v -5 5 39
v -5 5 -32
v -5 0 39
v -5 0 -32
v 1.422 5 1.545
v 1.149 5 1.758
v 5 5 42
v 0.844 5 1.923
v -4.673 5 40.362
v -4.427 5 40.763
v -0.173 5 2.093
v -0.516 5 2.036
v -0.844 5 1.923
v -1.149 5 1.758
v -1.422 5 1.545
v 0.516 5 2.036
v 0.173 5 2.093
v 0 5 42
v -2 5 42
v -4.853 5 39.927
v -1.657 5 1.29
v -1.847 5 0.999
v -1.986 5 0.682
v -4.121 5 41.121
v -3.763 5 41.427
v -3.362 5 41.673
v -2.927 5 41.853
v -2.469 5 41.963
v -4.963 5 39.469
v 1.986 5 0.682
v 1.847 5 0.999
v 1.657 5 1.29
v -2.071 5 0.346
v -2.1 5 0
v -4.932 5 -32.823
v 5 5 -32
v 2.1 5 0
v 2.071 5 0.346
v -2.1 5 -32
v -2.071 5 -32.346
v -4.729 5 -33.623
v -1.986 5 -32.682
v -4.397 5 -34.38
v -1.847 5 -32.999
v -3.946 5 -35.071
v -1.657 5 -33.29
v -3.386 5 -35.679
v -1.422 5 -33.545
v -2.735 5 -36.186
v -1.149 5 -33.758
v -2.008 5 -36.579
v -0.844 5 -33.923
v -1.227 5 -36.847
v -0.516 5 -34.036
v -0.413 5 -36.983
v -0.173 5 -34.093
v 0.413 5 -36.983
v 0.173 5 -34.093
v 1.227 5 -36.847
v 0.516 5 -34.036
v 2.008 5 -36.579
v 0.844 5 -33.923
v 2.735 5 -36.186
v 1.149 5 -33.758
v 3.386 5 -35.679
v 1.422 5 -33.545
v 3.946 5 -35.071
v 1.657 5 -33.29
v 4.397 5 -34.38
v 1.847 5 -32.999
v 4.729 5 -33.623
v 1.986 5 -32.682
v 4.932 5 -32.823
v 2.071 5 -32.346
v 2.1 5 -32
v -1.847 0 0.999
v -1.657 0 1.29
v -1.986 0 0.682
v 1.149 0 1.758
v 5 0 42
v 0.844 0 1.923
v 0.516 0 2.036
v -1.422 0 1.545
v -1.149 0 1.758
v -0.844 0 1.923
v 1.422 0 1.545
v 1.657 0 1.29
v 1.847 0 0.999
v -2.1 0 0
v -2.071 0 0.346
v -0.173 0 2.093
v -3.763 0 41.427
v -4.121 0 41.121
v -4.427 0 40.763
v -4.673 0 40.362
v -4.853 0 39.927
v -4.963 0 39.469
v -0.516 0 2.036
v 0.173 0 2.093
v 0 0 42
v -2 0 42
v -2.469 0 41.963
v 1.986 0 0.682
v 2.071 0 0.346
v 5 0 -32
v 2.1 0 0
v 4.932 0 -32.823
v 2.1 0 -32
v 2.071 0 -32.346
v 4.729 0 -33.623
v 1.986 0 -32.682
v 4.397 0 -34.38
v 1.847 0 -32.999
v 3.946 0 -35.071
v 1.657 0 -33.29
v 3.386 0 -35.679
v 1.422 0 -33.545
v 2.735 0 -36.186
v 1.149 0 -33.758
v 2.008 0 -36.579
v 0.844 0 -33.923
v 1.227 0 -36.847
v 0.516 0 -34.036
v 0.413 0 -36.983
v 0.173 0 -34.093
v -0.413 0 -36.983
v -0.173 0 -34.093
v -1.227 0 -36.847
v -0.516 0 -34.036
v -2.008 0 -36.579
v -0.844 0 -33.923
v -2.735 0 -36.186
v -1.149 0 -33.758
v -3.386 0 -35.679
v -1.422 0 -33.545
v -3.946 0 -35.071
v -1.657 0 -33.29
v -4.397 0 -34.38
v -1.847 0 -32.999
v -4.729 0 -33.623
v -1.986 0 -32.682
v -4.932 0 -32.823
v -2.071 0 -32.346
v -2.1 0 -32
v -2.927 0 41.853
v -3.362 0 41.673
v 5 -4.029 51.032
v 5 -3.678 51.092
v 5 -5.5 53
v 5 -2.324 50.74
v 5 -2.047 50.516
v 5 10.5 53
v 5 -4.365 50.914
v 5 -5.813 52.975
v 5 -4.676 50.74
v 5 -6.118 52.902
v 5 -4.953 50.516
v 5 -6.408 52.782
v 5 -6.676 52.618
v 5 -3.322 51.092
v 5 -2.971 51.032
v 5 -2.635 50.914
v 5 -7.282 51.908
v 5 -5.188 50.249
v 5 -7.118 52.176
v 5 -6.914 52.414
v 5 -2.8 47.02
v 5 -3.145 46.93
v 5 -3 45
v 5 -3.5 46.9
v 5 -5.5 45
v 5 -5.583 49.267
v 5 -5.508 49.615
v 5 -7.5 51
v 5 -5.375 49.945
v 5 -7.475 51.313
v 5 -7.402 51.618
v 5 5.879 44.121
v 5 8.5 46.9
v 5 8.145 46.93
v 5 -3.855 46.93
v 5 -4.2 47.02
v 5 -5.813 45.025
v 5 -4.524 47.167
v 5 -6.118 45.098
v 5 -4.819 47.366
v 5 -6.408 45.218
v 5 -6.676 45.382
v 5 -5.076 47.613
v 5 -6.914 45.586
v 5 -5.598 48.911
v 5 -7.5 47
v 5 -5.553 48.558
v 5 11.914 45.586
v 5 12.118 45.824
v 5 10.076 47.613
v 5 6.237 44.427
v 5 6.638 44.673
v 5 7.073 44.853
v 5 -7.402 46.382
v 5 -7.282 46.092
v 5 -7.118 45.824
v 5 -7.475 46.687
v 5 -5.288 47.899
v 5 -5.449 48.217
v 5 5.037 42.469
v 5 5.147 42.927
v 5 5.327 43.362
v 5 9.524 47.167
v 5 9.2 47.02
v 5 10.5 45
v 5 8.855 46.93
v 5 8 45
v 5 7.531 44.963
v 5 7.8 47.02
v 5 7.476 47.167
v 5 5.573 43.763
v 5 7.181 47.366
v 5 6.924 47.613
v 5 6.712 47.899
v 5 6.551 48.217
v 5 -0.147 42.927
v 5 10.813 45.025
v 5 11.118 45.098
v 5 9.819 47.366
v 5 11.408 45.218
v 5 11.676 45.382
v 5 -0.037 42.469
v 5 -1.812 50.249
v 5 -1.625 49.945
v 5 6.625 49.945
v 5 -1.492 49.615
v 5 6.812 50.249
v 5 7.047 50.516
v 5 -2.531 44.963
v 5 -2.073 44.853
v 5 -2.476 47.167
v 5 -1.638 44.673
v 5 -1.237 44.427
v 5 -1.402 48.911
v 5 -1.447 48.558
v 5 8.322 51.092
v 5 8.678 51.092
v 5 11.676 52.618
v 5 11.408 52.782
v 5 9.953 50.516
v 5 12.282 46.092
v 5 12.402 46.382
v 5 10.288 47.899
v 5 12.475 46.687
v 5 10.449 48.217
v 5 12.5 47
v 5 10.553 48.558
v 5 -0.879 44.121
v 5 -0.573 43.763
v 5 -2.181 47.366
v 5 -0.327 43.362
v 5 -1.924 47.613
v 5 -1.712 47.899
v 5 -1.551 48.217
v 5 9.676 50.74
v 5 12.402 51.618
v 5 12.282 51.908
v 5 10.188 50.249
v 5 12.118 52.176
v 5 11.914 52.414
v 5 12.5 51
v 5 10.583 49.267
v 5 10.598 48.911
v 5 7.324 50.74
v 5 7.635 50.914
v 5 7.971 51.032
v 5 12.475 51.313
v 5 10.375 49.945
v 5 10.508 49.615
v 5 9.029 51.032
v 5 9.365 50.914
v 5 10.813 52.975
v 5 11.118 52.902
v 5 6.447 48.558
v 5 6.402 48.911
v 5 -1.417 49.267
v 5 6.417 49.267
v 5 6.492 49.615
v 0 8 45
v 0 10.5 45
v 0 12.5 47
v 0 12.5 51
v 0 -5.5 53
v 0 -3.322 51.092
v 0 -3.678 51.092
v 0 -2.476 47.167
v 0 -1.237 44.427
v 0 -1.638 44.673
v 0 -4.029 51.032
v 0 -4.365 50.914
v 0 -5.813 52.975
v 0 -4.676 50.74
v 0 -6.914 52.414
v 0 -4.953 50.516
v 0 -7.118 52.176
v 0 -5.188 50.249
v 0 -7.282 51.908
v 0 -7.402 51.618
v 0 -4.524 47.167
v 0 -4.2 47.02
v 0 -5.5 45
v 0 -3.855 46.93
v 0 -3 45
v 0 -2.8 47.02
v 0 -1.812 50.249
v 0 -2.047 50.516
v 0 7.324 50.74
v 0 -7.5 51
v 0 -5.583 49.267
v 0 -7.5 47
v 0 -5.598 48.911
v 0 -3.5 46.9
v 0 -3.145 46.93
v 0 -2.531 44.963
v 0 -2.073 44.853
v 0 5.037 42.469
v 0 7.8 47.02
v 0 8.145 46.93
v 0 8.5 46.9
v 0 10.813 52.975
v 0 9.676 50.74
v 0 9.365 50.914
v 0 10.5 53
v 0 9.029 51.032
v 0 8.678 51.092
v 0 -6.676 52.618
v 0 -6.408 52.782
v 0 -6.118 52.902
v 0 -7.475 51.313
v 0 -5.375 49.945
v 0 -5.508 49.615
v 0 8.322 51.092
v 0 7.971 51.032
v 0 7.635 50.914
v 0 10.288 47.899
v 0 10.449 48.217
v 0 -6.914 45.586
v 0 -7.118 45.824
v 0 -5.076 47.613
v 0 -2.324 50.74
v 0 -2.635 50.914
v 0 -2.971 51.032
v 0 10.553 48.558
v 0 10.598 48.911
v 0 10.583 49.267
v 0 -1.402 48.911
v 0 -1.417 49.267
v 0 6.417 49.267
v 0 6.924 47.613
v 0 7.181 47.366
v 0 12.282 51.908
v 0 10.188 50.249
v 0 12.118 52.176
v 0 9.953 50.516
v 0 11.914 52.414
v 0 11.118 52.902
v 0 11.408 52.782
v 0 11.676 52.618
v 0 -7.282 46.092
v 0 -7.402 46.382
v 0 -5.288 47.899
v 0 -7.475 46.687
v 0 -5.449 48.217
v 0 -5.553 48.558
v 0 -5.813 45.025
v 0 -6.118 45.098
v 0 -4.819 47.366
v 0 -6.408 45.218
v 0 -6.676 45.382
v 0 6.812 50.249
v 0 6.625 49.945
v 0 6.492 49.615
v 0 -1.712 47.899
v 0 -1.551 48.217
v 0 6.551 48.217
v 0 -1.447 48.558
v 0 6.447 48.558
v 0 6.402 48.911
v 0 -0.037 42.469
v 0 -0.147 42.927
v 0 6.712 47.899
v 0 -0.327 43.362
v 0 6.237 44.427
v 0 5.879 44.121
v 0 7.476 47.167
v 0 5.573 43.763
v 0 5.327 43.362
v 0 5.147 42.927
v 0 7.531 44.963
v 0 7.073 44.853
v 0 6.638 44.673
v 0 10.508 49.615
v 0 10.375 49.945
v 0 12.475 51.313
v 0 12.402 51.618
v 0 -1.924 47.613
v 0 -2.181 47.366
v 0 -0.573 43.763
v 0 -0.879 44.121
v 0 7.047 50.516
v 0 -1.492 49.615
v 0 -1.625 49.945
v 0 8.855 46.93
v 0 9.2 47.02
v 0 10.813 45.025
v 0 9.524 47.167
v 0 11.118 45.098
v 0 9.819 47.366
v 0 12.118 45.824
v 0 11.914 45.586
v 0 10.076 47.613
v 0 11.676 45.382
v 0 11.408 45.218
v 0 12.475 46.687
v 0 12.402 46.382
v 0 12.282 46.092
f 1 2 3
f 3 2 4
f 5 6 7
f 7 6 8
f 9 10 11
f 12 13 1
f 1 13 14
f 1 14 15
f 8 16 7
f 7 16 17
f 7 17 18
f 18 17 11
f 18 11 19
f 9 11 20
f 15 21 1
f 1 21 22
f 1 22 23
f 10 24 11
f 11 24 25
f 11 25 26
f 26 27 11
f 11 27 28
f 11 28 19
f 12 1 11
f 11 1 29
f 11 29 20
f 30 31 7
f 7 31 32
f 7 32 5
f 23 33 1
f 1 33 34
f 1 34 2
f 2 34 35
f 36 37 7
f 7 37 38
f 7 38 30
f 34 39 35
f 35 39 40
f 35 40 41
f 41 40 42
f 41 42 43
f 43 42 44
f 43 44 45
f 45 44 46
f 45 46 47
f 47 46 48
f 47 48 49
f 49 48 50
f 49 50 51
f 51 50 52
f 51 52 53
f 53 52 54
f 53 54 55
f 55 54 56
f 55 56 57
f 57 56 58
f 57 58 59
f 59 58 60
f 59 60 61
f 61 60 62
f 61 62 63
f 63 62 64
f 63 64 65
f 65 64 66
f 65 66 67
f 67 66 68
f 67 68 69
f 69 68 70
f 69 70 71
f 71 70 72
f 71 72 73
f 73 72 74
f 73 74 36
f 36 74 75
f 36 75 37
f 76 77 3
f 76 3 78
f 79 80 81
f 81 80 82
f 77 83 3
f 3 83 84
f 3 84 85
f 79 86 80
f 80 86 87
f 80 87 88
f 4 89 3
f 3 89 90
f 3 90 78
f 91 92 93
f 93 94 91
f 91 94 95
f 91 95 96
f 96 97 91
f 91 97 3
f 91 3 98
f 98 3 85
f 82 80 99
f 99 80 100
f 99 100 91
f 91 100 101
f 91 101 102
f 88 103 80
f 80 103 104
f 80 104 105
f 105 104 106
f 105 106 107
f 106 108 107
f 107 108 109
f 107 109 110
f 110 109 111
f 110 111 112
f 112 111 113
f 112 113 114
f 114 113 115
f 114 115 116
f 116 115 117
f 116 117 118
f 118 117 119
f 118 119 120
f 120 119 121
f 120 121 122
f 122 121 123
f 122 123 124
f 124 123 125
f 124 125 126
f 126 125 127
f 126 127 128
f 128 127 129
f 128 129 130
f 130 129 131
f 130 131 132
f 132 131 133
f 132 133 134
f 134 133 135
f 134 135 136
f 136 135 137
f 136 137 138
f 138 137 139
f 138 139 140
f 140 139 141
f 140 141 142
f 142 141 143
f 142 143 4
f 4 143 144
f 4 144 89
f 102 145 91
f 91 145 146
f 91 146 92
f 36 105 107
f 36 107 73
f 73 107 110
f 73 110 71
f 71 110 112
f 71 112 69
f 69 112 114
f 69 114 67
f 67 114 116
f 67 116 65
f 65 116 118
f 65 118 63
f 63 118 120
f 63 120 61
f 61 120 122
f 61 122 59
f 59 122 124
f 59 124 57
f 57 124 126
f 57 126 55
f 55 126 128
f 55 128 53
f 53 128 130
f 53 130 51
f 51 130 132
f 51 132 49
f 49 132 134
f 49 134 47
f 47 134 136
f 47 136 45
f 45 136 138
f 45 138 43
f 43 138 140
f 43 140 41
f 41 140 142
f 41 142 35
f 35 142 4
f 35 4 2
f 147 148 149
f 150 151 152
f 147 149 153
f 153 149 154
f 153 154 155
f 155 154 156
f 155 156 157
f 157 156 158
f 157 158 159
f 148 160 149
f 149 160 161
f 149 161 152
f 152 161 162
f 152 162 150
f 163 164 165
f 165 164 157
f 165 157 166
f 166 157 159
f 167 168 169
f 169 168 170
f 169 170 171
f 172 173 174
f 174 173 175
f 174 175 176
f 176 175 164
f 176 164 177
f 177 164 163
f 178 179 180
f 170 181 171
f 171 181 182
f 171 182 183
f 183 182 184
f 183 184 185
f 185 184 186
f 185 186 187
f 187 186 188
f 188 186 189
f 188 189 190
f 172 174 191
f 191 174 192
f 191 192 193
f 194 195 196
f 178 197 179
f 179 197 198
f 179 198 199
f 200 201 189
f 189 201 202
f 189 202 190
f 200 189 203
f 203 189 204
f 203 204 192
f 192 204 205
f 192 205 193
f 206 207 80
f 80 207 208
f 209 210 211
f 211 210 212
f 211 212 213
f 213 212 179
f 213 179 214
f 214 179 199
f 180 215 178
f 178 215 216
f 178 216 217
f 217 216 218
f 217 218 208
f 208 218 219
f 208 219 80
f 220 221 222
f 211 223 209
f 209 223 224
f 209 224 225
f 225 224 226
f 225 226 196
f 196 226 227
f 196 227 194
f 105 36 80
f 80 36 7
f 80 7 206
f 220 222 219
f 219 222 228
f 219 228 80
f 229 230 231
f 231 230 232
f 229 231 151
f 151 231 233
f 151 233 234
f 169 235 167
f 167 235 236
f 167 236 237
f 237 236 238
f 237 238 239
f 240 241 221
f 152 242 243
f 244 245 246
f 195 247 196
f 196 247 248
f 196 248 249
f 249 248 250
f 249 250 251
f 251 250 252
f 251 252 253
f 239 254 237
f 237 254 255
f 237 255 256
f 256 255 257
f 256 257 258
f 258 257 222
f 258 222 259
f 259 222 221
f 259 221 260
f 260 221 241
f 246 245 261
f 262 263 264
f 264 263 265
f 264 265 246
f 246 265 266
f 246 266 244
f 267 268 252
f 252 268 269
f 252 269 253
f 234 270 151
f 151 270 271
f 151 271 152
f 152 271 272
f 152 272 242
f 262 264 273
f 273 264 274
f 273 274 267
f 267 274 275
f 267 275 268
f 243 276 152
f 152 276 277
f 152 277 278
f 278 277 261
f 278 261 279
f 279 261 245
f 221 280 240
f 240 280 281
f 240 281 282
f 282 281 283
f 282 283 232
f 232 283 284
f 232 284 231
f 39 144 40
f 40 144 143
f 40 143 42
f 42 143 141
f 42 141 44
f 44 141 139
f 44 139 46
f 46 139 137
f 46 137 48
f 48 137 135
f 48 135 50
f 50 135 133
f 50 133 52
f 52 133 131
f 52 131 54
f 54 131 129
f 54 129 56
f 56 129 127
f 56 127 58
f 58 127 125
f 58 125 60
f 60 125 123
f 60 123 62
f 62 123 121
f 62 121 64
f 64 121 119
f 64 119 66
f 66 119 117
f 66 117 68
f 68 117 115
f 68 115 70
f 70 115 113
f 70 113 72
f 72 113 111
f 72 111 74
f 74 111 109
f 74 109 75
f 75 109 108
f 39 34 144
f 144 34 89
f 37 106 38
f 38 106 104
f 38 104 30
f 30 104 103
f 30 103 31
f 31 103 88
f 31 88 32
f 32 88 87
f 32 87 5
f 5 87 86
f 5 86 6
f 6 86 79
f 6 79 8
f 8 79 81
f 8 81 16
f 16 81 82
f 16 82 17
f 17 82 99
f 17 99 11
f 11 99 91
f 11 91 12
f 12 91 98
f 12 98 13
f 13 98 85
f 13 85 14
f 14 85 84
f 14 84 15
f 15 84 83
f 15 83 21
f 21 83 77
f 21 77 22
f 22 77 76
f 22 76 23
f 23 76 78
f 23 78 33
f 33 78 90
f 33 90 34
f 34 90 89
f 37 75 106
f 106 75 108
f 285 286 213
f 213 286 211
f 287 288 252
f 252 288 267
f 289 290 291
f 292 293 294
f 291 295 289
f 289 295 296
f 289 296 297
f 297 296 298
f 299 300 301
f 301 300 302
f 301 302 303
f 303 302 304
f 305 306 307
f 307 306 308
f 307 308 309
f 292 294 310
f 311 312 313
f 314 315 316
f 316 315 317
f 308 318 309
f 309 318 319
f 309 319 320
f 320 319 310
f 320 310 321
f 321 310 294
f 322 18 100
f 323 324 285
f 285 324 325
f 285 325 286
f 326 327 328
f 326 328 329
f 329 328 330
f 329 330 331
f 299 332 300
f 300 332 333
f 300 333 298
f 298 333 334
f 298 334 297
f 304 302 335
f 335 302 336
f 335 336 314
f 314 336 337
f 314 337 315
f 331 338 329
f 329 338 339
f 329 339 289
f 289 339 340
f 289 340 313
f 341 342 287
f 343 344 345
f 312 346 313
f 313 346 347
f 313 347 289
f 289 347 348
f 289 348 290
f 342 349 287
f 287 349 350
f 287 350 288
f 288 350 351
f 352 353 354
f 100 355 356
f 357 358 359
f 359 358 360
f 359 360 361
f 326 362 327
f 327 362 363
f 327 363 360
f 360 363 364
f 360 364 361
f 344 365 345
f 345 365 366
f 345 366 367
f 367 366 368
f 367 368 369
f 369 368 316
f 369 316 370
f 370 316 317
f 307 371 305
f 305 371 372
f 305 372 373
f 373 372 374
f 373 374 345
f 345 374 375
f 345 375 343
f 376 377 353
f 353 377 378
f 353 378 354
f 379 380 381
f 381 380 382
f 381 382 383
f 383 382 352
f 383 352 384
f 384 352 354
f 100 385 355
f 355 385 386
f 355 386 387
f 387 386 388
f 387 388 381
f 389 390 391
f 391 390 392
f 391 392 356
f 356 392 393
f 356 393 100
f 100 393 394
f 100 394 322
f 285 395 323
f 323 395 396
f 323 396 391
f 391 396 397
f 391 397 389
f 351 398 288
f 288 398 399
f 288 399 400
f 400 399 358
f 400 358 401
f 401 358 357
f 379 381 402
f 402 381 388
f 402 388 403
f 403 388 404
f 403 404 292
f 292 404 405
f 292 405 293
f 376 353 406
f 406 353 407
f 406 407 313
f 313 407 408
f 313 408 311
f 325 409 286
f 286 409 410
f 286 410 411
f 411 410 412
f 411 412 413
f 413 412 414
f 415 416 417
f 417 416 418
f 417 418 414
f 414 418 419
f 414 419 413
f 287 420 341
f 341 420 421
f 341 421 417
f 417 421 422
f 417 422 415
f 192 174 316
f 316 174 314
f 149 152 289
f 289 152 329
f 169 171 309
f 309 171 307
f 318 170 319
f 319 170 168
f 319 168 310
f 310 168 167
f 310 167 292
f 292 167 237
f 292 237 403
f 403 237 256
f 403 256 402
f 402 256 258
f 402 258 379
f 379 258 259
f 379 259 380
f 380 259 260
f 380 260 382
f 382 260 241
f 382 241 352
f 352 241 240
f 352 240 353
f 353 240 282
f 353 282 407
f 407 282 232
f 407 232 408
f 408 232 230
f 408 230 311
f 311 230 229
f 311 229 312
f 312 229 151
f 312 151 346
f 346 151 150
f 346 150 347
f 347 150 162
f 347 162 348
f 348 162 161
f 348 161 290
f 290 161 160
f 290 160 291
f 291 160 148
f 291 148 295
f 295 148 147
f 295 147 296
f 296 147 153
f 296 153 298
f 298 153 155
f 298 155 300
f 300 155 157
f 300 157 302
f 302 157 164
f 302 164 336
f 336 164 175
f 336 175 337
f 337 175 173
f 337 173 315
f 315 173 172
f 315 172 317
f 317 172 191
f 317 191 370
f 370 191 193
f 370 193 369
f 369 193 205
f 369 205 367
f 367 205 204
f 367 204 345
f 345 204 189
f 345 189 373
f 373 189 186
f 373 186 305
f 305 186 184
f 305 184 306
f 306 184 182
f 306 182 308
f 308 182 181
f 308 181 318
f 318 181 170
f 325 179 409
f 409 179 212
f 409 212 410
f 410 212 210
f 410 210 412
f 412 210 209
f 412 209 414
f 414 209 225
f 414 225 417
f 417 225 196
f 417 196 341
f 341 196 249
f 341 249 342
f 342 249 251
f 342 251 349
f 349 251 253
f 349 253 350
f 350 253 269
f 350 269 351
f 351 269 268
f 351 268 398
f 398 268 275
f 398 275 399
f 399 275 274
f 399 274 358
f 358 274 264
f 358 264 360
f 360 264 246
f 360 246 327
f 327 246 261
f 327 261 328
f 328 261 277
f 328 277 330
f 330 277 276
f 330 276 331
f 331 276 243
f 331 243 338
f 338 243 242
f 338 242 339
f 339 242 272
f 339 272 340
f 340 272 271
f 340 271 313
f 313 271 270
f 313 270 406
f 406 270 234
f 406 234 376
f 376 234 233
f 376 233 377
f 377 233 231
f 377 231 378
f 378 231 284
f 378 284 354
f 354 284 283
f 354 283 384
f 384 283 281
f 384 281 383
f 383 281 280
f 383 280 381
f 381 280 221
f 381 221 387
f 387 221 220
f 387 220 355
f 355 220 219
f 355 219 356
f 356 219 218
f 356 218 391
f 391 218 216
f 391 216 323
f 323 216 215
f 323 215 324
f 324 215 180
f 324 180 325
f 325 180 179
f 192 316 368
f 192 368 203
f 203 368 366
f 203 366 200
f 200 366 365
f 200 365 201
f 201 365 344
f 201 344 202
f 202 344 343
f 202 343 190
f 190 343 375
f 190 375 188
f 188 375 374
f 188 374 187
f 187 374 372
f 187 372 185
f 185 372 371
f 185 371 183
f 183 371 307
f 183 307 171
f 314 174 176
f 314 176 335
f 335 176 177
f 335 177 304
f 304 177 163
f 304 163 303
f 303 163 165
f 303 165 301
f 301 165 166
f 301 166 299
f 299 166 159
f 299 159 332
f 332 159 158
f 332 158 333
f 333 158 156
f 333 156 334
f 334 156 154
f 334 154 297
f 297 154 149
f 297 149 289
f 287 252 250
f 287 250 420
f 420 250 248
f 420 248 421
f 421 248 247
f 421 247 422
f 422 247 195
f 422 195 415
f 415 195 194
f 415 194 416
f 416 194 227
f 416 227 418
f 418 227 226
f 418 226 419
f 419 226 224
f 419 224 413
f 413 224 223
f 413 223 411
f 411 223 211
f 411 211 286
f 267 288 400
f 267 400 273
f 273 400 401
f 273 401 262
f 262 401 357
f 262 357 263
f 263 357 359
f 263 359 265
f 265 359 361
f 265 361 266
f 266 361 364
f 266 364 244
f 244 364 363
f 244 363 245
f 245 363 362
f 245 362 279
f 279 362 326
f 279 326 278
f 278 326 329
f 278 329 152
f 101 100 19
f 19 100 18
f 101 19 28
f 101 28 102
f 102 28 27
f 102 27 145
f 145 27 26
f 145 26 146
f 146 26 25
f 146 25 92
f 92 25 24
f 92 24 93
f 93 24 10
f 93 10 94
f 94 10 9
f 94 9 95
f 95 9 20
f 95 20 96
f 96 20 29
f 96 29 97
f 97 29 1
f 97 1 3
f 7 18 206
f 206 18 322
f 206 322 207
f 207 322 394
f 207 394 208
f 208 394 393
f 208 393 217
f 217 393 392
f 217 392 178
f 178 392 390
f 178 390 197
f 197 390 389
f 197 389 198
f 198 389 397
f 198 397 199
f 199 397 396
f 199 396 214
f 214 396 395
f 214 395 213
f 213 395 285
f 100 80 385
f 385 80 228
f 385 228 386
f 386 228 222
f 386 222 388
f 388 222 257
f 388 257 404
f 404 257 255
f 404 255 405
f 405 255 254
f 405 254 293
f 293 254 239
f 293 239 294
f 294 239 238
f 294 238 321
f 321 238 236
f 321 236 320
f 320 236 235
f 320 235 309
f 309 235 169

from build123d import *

# Parameters (mm, degrees)
BOSS_EXTRUDE1_DEPTH = 5
SKETCH2_W           = 5
SKETCH2_H           = 20
BOSS_EXTRUDE2_DEPTH = 8
SKETCH3_R           = 2.1
CUT_EXTRUDE1_DEPTH  = 8
FILLET2_R           = 2
SKETCH4_W           = 5
SKETCH4_H           = 5
CUT_EXTRUDE2_DEPTH  = 3
FILLET3_R           = 3


with BuildPart() as part:
    # Sketch1 → Boss-Extrude1 (new body)
    with BuildSketch(Plane(origin=(0, 0, 0), x_dir=(1, 0, 0), z_dir=(0, 1, 0))):
        with BuildLine():
            Line((5, 32), (5, 0))
            Line((5, 0), (5, -45))
            Line((5, -45), (-5, -45))
            Line((-5, -45), (-5, 0))
            Line((-5, 0), (-5, 32))
            ThreePointArc((-5, 32), (0, 37), (5, 32))
        make_face()
        with BuildLine():
            Line((2.1, 32), (2.1, 0))
            ThreePointArc((2.1, 0), (0, -2.1), (-2.1, 0))
            Line((-2.1, 0), (-2.1, 32))
            ThreePointArc((-2.1, 32), (0, 34.1), (2.1, 32))
        make_face(mode=Mode.SUBTRACT)
    extrude(amount=BOSS_EXTRUDE1_DEPTH)

    # Sketch2 → Boss-Extrude2 (add)
    with BuildSketch(Plane.XY.offset(45)):
        with Locations((2.5, 2.5)):
            Rectangle(SKETCH2_W, SKETCH2_H)
    extrude(amount=BOSS_EXTRUDE2_DEPTH)

    # Sketch3 → Cut-Extrude1 (cut)
    with BuildSketch(Plane(origin=(5, 0, 0), x_dir=(0, 0, -1), z_dir=(1, 0, 0))):
        with Locations((-49, 8.5)):
            Circle(SKETCH3_R)
        with Locations((-49, -3.5)):
            Circle(SKETCH3_R)
    extrude(amount=-CUT_EXTRUDE1_DEPTH, mode=Mode.SUBTRACT)

    # Fillet2
    fillet2_edges = [part.edges().sort_by_distance(p)[0] for p in [
        (2.5, 12.5, 45),
        (2.5, -7.5, 45),
        (2.5, 12.5, 53),
        (2.5, -7.5, 53),
    ]]
    fillet(fillet2_edges, radius=FILLET2_R)

    # Sketch4 → Cut-Extrude2 (cut)
    with BuildSketch(Plane.XY.offset(45)):
        with Locations((-2.5, 2.5)):
            Rectangle(SKETCH4_W, SKETCH4_H)
    extrude(amount=-CUT_EXTRUDE2_DEPTH, mode=Mode.SUBTRACT)

    # Fillet3
    fillet3_edges = [part.edges().sort_by_distance(p)[0] for p in [
        (2.5, 0, 45),
        (-5, 2.5, 42),
        (2.5, 5, 45),
    ]]
    fillet(fillet3_edges, radius=FILLET3_R)


solid = part.part
